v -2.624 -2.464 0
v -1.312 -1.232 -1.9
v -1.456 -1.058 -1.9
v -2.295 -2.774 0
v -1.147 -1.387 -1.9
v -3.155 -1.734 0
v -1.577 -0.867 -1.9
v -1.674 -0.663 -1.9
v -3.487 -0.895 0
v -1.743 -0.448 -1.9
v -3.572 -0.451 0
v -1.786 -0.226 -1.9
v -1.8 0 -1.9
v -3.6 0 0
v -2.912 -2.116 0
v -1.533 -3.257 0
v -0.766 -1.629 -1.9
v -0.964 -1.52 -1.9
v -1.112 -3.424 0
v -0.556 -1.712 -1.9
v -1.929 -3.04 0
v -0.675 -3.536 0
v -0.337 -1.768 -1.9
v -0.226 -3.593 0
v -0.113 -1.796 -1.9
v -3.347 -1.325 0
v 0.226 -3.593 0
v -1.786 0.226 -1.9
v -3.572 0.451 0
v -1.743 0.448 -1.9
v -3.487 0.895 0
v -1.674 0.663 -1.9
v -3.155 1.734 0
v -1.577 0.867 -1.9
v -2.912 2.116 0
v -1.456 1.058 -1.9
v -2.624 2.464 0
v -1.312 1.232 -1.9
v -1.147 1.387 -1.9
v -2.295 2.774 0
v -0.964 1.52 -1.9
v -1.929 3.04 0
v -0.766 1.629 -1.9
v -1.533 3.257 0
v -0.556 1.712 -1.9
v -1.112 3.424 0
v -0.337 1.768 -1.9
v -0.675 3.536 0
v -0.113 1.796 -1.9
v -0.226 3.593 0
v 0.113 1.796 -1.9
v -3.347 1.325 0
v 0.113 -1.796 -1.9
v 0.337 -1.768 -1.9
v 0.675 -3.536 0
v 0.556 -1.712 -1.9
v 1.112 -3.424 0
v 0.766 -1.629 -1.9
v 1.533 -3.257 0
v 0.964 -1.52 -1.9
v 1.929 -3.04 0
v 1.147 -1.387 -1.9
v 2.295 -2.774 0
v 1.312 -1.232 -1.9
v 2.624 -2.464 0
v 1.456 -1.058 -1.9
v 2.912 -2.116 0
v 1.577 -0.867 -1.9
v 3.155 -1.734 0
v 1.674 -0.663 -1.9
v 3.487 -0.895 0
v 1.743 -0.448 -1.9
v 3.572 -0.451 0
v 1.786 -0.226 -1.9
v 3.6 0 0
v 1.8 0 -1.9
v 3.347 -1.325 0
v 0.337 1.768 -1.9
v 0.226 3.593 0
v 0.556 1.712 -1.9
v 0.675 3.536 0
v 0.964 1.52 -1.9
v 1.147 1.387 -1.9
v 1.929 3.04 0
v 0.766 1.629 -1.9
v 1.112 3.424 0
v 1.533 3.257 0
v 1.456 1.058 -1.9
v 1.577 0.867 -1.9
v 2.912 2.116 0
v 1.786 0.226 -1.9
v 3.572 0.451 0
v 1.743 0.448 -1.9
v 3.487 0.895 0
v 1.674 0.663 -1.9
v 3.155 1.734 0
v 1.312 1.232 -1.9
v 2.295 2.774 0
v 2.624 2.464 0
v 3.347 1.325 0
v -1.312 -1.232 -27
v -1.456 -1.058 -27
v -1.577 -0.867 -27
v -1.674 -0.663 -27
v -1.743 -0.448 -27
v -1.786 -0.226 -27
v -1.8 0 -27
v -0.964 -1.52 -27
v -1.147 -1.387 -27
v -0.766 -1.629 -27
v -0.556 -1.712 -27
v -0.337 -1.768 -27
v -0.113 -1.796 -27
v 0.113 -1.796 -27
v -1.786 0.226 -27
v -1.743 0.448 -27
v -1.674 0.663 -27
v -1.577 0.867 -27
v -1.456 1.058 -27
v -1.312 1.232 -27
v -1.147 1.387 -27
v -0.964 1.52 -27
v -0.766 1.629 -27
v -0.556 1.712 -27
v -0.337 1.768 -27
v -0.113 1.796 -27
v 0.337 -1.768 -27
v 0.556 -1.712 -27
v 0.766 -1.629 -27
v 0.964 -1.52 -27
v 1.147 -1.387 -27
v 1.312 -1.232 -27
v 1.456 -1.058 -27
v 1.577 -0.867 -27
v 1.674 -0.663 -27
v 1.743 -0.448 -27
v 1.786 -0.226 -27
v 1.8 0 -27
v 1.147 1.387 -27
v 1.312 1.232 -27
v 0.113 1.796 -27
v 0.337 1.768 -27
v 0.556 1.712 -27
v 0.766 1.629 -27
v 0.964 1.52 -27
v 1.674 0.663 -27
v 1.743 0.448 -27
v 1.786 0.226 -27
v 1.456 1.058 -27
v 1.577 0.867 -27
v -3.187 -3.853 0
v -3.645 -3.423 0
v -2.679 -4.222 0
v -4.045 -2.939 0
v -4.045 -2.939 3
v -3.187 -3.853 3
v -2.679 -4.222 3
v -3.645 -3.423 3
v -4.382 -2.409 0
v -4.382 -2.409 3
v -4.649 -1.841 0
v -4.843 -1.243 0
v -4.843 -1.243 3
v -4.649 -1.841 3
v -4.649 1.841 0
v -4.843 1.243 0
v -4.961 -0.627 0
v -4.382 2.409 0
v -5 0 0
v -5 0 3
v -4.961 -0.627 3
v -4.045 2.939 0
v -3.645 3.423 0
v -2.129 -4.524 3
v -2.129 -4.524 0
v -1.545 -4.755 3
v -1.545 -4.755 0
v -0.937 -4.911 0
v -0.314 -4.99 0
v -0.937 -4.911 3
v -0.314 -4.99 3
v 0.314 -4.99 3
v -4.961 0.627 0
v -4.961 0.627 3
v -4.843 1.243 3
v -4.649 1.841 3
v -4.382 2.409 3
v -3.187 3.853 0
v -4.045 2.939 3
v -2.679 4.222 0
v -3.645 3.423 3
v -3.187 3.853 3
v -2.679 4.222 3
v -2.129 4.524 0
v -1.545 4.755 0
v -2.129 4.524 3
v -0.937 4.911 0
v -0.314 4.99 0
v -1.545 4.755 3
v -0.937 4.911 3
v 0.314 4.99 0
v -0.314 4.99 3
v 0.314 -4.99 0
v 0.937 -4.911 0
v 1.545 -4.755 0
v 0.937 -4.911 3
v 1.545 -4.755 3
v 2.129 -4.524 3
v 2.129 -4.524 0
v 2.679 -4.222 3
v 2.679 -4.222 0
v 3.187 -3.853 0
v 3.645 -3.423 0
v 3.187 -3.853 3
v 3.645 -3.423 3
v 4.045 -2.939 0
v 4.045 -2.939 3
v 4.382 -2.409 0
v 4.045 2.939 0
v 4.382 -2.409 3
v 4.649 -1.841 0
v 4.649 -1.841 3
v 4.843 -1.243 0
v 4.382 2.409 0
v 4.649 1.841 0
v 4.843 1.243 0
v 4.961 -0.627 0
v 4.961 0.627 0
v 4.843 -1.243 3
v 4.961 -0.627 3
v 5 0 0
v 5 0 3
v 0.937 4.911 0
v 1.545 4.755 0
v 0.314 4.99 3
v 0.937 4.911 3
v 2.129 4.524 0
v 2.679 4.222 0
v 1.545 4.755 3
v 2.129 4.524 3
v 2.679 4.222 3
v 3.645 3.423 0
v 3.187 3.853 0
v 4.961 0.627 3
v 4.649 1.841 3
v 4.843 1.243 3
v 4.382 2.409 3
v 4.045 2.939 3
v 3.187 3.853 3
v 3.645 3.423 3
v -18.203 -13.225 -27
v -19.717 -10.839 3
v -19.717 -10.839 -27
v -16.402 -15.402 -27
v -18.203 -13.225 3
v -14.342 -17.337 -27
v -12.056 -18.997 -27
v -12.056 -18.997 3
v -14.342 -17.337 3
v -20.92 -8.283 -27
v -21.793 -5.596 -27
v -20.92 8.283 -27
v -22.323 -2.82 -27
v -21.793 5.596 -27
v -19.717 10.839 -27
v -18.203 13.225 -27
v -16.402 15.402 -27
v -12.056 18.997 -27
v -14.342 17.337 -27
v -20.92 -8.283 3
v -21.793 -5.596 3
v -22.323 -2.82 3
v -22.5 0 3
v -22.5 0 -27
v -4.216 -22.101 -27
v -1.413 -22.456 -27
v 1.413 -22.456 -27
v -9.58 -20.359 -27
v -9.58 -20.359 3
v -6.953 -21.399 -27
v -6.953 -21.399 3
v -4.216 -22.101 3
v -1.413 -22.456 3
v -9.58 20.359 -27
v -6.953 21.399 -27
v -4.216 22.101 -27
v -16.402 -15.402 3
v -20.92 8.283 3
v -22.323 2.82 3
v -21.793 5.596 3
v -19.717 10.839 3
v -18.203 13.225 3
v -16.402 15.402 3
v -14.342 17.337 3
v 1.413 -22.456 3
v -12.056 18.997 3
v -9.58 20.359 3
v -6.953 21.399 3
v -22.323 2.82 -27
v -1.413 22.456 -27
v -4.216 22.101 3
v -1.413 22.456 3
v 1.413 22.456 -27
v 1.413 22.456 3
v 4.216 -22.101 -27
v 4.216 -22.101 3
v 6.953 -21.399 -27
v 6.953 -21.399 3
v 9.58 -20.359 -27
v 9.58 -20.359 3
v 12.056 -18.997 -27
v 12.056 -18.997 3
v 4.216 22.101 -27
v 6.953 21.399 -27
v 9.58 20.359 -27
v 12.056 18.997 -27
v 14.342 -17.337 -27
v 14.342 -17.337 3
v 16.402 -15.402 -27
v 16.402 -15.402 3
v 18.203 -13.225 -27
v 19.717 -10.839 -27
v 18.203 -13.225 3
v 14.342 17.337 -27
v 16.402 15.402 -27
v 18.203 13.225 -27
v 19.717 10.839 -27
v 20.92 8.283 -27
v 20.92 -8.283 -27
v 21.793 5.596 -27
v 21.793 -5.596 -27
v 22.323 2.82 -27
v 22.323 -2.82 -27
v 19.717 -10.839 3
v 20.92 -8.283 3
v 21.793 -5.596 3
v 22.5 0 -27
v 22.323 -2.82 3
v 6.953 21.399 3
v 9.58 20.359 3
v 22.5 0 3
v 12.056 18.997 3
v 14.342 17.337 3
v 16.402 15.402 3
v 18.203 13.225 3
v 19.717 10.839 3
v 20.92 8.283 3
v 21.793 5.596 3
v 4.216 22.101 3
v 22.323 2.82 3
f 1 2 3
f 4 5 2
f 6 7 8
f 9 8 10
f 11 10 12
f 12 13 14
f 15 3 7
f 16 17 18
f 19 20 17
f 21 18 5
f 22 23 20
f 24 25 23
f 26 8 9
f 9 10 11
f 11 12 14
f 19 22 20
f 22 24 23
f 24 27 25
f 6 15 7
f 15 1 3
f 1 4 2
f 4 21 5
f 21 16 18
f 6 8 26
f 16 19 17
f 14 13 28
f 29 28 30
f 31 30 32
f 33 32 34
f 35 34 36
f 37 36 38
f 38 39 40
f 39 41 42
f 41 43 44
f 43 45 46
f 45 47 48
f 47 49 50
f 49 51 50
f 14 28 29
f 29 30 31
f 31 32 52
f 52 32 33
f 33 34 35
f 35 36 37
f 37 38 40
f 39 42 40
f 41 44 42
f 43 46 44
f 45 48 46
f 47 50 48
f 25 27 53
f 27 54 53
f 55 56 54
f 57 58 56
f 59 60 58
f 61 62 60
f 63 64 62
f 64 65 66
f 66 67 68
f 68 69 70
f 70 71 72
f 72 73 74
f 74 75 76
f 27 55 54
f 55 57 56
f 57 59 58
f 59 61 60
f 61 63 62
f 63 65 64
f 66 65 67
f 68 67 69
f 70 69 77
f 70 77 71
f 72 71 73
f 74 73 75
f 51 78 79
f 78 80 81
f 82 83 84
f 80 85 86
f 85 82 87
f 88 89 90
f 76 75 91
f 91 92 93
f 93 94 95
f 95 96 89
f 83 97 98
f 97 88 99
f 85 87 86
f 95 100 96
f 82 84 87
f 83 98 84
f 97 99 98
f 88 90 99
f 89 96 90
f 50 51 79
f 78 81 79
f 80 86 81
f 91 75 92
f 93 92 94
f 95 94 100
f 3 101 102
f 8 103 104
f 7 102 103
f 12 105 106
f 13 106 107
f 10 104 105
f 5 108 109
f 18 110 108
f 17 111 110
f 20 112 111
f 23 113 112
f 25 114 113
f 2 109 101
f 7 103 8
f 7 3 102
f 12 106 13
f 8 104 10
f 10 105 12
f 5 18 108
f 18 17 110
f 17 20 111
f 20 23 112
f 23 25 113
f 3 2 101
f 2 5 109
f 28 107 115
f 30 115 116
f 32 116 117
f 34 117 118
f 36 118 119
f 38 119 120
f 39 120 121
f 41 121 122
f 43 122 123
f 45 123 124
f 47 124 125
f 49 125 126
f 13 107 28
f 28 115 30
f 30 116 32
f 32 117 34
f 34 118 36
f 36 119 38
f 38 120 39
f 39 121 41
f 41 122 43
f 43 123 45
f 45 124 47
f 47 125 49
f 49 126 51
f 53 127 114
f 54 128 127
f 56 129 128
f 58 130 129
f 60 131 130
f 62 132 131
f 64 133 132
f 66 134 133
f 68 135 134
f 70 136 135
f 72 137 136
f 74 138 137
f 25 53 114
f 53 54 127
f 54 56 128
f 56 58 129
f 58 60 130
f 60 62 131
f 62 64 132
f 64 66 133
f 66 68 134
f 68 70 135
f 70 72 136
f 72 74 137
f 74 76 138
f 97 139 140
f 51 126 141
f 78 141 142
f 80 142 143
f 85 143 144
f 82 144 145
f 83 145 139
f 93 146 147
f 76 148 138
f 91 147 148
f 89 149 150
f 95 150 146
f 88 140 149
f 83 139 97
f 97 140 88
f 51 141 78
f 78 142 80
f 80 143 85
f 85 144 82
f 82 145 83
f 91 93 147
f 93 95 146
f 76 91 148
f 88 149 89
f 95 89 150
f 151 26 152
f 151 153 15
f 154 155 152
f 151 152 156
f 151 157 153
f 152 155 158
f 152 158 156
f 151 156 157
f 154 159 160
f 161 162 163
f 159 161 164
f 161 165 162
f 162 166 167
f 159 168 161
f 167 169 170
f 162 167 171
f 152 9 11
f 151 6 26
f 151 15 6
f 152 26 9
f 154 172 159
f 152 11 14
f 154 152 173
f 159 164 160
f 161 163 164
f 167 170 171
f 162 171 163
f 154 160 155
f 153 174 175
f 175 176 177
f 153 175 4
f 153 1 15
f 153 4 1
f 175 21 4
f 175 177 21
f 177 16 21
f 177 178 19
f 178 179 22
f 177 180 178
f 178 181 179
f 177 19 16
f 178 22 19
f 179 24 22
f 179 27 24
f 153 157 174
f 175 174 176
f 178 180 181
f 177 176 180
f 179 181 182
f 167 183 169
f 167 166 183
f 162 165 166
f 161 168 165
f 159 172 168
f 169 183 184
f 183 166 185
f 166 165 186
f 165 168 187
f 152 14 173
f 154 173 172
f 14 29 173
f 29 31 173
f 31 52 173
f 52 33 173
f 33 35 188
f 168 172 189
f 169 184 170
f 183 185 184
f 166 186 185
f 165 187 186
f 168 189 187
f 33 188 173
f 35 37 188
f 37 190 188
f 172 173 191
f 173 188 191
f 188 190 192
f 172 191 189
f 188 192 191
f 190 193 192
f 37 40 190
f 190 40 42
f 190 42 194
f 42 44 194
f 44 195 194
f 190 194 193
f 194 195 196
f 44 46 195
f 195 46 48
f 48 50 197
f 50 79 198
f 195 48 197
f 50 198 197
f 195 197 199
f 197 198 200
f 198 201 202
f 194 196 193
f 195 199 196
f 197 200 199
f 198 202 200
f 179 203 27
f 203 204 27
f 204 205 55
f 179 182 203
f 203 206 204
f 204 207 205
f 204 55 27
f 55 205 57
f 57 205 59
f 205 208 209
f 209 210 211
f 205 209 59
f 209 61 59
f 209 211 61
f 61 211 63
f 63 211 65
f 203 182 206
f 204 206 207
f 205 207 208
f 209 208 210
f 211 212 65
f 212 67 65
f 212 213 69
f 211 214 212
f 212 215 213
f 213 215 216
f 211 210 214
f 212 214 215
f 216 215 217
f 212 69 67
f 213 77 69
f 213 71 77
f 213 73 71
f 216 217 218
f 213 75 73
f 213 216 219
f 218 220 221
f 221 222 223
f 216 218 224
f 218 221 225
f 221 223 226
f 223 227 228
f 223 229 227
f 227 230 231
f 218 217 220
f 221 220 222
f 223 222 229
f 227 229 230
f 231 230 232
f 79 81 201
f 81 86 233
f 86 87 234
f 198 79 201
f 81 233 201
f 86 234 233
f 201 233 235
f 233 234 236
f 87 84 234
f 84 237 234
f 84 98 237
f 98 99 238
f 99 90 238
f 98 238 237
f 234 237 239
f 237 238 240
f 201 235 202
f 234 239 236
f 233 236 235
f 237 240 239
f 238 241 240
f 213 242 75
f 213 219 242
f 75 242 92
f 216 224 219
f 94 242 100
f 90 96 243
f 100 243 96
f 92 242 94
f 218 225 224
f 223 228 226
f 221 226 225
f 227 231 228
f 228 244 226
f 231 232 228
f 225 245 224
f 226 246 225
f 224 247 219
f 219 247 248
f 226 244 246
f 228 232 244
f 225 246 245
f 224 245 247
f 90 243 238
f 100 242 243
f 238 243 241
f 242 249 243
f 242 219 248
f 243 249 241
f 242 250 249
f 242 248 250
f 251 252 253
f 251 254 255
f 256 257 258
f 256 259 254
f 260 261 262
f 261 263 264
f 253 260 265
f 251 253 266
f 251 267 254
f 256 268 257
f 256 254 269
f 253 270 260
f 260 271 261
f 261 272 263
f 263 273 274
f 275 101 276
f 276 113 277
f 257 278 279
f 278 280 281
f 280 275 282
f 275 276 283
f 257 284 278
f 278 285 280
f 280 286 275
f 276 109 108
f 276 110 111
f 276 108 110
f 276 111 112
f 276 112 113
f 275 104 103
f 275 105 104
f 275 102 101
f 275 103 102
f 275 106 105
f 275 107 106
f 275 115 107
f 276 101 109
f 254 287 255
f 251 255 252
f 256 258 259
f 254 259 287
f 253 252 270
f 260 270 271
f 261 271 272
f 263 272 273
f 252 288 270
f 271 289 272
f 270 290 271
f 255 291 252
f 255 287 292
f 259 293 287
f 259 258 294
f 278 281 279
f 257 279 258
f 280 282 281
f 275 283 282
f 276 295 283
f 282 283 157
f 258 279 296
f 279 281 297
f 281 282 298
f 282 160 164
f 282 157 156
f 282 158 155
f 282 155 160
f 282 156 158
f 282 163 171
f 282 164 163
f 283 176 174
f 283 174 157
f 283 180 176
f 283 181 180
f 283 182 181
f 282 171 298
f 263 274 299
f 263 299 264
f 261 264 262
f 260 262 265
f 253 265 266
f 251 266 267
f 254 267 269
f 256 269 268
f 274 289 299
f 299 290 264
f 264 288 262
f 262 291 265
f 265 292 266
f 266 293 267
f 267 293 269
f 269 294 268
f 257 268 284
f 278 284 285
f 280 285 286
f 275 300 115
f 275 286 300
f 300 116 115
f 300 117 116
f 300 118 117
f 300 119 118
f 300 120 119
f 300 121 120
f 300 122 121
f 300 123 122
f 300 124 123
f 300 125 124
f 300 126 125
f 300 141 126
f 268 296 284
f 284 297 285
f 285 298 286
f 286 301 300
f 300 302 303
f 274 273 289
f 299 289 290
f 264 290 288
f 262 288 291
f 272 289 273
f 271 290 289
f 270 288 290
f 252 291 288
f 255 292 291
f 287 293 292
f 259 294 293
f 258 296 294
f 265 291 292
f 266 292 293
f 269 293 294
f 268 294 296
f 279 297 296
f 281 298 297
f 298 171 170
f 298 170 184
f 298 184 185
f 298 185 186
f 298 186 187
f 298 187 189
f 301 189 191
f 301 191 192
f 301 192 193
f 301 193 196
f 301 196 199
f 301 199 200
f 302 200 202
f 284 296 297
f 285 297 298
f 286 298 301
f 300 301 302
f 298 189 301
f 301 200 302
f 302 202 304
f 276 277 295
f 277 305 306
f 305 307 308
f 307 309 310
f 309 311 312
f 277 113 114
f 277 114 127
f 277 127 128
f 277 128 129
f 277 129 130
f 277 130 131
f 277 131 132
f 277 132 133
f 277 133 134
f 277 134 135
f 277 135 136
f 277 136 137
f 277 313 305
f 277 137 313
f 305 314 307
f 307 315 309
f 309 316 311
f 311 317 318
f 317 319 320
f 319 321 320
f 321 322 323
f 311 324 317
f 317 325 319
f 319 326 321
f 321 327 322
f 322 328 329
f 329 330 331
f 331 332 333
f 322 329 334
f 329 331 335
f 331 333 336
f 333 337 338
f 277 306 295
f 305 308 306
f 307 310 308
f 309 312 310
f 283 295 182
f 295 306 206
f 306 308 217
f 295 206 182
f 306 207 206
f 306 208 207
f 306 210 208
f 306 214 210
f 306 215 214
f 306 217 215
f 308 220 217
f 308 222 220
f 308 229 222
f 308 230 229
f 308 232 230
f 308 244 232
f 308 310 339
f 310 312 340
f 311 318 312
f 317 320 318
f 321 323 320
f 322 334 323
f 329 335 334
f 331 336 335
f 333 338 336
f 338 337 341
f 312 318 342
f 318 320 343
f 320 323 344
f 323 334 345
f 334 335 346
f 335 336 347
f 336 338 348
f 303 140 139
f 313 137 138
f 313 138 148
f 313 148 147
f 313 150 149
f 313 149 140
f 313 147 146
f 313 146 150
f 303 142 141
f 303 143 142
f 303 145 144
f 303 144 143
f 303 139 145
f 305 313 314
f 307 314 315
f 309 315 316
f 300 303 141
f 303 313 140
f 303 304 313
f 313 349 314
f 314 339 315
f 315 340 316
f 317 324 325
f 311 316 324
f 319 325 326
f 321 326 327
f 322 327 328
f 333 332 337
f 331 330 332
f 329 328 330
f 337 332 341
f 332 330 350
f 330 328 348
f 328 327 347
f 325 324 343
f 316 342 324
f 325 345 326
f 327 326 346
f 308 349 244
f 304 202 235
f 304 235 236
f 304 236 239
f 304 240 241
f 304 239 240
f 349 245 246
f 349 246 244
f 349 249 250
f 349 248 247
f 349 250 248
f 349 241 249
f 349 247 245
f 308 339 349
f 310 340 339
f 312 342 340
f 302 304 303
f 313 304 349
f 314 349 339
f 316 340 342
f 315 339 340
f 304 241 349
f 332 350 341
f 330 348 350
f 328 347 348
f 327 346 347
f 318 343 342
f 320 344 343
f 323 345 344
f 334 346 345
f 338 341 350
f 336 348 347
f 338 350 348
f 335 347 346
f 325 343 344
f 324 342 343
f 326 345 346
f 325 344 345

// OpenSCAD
$fn = 50;


difference() {
	union() {
		translate(v = [0, 0, -27.0000000000]) {
			cylinder(h = 30, r = 22.5000000000);
		}
	}
	union() {
		translate(v = [0, 0, 0]) {
			rotate(a = [0, 0, 0]) {
				difference() {
					union() {
						translate(v = [0, 0, -30.0000000000]) {
							cylinder(h = 30, r = 1.5000000000);
						}
						translate(v = [0, 0, -1.9000000000]) {
							cylinder(h = 1.9000000000, r1 = 1.8000000000, r2 = 3.6000000000);
						}
						translate(v = [0, 0, -30.0000000000]) {
							cylinder(h = 30, r = 1.8000000000);
						}
						translate(v = [0, 0, -30.0000000000]) {
							cylinder(h = 30, r = 1.5000000000);
						}
					}
					union();
				}
			}
		}
		#cylinder(h = 3, r = 5.0000000000);
	}
}
